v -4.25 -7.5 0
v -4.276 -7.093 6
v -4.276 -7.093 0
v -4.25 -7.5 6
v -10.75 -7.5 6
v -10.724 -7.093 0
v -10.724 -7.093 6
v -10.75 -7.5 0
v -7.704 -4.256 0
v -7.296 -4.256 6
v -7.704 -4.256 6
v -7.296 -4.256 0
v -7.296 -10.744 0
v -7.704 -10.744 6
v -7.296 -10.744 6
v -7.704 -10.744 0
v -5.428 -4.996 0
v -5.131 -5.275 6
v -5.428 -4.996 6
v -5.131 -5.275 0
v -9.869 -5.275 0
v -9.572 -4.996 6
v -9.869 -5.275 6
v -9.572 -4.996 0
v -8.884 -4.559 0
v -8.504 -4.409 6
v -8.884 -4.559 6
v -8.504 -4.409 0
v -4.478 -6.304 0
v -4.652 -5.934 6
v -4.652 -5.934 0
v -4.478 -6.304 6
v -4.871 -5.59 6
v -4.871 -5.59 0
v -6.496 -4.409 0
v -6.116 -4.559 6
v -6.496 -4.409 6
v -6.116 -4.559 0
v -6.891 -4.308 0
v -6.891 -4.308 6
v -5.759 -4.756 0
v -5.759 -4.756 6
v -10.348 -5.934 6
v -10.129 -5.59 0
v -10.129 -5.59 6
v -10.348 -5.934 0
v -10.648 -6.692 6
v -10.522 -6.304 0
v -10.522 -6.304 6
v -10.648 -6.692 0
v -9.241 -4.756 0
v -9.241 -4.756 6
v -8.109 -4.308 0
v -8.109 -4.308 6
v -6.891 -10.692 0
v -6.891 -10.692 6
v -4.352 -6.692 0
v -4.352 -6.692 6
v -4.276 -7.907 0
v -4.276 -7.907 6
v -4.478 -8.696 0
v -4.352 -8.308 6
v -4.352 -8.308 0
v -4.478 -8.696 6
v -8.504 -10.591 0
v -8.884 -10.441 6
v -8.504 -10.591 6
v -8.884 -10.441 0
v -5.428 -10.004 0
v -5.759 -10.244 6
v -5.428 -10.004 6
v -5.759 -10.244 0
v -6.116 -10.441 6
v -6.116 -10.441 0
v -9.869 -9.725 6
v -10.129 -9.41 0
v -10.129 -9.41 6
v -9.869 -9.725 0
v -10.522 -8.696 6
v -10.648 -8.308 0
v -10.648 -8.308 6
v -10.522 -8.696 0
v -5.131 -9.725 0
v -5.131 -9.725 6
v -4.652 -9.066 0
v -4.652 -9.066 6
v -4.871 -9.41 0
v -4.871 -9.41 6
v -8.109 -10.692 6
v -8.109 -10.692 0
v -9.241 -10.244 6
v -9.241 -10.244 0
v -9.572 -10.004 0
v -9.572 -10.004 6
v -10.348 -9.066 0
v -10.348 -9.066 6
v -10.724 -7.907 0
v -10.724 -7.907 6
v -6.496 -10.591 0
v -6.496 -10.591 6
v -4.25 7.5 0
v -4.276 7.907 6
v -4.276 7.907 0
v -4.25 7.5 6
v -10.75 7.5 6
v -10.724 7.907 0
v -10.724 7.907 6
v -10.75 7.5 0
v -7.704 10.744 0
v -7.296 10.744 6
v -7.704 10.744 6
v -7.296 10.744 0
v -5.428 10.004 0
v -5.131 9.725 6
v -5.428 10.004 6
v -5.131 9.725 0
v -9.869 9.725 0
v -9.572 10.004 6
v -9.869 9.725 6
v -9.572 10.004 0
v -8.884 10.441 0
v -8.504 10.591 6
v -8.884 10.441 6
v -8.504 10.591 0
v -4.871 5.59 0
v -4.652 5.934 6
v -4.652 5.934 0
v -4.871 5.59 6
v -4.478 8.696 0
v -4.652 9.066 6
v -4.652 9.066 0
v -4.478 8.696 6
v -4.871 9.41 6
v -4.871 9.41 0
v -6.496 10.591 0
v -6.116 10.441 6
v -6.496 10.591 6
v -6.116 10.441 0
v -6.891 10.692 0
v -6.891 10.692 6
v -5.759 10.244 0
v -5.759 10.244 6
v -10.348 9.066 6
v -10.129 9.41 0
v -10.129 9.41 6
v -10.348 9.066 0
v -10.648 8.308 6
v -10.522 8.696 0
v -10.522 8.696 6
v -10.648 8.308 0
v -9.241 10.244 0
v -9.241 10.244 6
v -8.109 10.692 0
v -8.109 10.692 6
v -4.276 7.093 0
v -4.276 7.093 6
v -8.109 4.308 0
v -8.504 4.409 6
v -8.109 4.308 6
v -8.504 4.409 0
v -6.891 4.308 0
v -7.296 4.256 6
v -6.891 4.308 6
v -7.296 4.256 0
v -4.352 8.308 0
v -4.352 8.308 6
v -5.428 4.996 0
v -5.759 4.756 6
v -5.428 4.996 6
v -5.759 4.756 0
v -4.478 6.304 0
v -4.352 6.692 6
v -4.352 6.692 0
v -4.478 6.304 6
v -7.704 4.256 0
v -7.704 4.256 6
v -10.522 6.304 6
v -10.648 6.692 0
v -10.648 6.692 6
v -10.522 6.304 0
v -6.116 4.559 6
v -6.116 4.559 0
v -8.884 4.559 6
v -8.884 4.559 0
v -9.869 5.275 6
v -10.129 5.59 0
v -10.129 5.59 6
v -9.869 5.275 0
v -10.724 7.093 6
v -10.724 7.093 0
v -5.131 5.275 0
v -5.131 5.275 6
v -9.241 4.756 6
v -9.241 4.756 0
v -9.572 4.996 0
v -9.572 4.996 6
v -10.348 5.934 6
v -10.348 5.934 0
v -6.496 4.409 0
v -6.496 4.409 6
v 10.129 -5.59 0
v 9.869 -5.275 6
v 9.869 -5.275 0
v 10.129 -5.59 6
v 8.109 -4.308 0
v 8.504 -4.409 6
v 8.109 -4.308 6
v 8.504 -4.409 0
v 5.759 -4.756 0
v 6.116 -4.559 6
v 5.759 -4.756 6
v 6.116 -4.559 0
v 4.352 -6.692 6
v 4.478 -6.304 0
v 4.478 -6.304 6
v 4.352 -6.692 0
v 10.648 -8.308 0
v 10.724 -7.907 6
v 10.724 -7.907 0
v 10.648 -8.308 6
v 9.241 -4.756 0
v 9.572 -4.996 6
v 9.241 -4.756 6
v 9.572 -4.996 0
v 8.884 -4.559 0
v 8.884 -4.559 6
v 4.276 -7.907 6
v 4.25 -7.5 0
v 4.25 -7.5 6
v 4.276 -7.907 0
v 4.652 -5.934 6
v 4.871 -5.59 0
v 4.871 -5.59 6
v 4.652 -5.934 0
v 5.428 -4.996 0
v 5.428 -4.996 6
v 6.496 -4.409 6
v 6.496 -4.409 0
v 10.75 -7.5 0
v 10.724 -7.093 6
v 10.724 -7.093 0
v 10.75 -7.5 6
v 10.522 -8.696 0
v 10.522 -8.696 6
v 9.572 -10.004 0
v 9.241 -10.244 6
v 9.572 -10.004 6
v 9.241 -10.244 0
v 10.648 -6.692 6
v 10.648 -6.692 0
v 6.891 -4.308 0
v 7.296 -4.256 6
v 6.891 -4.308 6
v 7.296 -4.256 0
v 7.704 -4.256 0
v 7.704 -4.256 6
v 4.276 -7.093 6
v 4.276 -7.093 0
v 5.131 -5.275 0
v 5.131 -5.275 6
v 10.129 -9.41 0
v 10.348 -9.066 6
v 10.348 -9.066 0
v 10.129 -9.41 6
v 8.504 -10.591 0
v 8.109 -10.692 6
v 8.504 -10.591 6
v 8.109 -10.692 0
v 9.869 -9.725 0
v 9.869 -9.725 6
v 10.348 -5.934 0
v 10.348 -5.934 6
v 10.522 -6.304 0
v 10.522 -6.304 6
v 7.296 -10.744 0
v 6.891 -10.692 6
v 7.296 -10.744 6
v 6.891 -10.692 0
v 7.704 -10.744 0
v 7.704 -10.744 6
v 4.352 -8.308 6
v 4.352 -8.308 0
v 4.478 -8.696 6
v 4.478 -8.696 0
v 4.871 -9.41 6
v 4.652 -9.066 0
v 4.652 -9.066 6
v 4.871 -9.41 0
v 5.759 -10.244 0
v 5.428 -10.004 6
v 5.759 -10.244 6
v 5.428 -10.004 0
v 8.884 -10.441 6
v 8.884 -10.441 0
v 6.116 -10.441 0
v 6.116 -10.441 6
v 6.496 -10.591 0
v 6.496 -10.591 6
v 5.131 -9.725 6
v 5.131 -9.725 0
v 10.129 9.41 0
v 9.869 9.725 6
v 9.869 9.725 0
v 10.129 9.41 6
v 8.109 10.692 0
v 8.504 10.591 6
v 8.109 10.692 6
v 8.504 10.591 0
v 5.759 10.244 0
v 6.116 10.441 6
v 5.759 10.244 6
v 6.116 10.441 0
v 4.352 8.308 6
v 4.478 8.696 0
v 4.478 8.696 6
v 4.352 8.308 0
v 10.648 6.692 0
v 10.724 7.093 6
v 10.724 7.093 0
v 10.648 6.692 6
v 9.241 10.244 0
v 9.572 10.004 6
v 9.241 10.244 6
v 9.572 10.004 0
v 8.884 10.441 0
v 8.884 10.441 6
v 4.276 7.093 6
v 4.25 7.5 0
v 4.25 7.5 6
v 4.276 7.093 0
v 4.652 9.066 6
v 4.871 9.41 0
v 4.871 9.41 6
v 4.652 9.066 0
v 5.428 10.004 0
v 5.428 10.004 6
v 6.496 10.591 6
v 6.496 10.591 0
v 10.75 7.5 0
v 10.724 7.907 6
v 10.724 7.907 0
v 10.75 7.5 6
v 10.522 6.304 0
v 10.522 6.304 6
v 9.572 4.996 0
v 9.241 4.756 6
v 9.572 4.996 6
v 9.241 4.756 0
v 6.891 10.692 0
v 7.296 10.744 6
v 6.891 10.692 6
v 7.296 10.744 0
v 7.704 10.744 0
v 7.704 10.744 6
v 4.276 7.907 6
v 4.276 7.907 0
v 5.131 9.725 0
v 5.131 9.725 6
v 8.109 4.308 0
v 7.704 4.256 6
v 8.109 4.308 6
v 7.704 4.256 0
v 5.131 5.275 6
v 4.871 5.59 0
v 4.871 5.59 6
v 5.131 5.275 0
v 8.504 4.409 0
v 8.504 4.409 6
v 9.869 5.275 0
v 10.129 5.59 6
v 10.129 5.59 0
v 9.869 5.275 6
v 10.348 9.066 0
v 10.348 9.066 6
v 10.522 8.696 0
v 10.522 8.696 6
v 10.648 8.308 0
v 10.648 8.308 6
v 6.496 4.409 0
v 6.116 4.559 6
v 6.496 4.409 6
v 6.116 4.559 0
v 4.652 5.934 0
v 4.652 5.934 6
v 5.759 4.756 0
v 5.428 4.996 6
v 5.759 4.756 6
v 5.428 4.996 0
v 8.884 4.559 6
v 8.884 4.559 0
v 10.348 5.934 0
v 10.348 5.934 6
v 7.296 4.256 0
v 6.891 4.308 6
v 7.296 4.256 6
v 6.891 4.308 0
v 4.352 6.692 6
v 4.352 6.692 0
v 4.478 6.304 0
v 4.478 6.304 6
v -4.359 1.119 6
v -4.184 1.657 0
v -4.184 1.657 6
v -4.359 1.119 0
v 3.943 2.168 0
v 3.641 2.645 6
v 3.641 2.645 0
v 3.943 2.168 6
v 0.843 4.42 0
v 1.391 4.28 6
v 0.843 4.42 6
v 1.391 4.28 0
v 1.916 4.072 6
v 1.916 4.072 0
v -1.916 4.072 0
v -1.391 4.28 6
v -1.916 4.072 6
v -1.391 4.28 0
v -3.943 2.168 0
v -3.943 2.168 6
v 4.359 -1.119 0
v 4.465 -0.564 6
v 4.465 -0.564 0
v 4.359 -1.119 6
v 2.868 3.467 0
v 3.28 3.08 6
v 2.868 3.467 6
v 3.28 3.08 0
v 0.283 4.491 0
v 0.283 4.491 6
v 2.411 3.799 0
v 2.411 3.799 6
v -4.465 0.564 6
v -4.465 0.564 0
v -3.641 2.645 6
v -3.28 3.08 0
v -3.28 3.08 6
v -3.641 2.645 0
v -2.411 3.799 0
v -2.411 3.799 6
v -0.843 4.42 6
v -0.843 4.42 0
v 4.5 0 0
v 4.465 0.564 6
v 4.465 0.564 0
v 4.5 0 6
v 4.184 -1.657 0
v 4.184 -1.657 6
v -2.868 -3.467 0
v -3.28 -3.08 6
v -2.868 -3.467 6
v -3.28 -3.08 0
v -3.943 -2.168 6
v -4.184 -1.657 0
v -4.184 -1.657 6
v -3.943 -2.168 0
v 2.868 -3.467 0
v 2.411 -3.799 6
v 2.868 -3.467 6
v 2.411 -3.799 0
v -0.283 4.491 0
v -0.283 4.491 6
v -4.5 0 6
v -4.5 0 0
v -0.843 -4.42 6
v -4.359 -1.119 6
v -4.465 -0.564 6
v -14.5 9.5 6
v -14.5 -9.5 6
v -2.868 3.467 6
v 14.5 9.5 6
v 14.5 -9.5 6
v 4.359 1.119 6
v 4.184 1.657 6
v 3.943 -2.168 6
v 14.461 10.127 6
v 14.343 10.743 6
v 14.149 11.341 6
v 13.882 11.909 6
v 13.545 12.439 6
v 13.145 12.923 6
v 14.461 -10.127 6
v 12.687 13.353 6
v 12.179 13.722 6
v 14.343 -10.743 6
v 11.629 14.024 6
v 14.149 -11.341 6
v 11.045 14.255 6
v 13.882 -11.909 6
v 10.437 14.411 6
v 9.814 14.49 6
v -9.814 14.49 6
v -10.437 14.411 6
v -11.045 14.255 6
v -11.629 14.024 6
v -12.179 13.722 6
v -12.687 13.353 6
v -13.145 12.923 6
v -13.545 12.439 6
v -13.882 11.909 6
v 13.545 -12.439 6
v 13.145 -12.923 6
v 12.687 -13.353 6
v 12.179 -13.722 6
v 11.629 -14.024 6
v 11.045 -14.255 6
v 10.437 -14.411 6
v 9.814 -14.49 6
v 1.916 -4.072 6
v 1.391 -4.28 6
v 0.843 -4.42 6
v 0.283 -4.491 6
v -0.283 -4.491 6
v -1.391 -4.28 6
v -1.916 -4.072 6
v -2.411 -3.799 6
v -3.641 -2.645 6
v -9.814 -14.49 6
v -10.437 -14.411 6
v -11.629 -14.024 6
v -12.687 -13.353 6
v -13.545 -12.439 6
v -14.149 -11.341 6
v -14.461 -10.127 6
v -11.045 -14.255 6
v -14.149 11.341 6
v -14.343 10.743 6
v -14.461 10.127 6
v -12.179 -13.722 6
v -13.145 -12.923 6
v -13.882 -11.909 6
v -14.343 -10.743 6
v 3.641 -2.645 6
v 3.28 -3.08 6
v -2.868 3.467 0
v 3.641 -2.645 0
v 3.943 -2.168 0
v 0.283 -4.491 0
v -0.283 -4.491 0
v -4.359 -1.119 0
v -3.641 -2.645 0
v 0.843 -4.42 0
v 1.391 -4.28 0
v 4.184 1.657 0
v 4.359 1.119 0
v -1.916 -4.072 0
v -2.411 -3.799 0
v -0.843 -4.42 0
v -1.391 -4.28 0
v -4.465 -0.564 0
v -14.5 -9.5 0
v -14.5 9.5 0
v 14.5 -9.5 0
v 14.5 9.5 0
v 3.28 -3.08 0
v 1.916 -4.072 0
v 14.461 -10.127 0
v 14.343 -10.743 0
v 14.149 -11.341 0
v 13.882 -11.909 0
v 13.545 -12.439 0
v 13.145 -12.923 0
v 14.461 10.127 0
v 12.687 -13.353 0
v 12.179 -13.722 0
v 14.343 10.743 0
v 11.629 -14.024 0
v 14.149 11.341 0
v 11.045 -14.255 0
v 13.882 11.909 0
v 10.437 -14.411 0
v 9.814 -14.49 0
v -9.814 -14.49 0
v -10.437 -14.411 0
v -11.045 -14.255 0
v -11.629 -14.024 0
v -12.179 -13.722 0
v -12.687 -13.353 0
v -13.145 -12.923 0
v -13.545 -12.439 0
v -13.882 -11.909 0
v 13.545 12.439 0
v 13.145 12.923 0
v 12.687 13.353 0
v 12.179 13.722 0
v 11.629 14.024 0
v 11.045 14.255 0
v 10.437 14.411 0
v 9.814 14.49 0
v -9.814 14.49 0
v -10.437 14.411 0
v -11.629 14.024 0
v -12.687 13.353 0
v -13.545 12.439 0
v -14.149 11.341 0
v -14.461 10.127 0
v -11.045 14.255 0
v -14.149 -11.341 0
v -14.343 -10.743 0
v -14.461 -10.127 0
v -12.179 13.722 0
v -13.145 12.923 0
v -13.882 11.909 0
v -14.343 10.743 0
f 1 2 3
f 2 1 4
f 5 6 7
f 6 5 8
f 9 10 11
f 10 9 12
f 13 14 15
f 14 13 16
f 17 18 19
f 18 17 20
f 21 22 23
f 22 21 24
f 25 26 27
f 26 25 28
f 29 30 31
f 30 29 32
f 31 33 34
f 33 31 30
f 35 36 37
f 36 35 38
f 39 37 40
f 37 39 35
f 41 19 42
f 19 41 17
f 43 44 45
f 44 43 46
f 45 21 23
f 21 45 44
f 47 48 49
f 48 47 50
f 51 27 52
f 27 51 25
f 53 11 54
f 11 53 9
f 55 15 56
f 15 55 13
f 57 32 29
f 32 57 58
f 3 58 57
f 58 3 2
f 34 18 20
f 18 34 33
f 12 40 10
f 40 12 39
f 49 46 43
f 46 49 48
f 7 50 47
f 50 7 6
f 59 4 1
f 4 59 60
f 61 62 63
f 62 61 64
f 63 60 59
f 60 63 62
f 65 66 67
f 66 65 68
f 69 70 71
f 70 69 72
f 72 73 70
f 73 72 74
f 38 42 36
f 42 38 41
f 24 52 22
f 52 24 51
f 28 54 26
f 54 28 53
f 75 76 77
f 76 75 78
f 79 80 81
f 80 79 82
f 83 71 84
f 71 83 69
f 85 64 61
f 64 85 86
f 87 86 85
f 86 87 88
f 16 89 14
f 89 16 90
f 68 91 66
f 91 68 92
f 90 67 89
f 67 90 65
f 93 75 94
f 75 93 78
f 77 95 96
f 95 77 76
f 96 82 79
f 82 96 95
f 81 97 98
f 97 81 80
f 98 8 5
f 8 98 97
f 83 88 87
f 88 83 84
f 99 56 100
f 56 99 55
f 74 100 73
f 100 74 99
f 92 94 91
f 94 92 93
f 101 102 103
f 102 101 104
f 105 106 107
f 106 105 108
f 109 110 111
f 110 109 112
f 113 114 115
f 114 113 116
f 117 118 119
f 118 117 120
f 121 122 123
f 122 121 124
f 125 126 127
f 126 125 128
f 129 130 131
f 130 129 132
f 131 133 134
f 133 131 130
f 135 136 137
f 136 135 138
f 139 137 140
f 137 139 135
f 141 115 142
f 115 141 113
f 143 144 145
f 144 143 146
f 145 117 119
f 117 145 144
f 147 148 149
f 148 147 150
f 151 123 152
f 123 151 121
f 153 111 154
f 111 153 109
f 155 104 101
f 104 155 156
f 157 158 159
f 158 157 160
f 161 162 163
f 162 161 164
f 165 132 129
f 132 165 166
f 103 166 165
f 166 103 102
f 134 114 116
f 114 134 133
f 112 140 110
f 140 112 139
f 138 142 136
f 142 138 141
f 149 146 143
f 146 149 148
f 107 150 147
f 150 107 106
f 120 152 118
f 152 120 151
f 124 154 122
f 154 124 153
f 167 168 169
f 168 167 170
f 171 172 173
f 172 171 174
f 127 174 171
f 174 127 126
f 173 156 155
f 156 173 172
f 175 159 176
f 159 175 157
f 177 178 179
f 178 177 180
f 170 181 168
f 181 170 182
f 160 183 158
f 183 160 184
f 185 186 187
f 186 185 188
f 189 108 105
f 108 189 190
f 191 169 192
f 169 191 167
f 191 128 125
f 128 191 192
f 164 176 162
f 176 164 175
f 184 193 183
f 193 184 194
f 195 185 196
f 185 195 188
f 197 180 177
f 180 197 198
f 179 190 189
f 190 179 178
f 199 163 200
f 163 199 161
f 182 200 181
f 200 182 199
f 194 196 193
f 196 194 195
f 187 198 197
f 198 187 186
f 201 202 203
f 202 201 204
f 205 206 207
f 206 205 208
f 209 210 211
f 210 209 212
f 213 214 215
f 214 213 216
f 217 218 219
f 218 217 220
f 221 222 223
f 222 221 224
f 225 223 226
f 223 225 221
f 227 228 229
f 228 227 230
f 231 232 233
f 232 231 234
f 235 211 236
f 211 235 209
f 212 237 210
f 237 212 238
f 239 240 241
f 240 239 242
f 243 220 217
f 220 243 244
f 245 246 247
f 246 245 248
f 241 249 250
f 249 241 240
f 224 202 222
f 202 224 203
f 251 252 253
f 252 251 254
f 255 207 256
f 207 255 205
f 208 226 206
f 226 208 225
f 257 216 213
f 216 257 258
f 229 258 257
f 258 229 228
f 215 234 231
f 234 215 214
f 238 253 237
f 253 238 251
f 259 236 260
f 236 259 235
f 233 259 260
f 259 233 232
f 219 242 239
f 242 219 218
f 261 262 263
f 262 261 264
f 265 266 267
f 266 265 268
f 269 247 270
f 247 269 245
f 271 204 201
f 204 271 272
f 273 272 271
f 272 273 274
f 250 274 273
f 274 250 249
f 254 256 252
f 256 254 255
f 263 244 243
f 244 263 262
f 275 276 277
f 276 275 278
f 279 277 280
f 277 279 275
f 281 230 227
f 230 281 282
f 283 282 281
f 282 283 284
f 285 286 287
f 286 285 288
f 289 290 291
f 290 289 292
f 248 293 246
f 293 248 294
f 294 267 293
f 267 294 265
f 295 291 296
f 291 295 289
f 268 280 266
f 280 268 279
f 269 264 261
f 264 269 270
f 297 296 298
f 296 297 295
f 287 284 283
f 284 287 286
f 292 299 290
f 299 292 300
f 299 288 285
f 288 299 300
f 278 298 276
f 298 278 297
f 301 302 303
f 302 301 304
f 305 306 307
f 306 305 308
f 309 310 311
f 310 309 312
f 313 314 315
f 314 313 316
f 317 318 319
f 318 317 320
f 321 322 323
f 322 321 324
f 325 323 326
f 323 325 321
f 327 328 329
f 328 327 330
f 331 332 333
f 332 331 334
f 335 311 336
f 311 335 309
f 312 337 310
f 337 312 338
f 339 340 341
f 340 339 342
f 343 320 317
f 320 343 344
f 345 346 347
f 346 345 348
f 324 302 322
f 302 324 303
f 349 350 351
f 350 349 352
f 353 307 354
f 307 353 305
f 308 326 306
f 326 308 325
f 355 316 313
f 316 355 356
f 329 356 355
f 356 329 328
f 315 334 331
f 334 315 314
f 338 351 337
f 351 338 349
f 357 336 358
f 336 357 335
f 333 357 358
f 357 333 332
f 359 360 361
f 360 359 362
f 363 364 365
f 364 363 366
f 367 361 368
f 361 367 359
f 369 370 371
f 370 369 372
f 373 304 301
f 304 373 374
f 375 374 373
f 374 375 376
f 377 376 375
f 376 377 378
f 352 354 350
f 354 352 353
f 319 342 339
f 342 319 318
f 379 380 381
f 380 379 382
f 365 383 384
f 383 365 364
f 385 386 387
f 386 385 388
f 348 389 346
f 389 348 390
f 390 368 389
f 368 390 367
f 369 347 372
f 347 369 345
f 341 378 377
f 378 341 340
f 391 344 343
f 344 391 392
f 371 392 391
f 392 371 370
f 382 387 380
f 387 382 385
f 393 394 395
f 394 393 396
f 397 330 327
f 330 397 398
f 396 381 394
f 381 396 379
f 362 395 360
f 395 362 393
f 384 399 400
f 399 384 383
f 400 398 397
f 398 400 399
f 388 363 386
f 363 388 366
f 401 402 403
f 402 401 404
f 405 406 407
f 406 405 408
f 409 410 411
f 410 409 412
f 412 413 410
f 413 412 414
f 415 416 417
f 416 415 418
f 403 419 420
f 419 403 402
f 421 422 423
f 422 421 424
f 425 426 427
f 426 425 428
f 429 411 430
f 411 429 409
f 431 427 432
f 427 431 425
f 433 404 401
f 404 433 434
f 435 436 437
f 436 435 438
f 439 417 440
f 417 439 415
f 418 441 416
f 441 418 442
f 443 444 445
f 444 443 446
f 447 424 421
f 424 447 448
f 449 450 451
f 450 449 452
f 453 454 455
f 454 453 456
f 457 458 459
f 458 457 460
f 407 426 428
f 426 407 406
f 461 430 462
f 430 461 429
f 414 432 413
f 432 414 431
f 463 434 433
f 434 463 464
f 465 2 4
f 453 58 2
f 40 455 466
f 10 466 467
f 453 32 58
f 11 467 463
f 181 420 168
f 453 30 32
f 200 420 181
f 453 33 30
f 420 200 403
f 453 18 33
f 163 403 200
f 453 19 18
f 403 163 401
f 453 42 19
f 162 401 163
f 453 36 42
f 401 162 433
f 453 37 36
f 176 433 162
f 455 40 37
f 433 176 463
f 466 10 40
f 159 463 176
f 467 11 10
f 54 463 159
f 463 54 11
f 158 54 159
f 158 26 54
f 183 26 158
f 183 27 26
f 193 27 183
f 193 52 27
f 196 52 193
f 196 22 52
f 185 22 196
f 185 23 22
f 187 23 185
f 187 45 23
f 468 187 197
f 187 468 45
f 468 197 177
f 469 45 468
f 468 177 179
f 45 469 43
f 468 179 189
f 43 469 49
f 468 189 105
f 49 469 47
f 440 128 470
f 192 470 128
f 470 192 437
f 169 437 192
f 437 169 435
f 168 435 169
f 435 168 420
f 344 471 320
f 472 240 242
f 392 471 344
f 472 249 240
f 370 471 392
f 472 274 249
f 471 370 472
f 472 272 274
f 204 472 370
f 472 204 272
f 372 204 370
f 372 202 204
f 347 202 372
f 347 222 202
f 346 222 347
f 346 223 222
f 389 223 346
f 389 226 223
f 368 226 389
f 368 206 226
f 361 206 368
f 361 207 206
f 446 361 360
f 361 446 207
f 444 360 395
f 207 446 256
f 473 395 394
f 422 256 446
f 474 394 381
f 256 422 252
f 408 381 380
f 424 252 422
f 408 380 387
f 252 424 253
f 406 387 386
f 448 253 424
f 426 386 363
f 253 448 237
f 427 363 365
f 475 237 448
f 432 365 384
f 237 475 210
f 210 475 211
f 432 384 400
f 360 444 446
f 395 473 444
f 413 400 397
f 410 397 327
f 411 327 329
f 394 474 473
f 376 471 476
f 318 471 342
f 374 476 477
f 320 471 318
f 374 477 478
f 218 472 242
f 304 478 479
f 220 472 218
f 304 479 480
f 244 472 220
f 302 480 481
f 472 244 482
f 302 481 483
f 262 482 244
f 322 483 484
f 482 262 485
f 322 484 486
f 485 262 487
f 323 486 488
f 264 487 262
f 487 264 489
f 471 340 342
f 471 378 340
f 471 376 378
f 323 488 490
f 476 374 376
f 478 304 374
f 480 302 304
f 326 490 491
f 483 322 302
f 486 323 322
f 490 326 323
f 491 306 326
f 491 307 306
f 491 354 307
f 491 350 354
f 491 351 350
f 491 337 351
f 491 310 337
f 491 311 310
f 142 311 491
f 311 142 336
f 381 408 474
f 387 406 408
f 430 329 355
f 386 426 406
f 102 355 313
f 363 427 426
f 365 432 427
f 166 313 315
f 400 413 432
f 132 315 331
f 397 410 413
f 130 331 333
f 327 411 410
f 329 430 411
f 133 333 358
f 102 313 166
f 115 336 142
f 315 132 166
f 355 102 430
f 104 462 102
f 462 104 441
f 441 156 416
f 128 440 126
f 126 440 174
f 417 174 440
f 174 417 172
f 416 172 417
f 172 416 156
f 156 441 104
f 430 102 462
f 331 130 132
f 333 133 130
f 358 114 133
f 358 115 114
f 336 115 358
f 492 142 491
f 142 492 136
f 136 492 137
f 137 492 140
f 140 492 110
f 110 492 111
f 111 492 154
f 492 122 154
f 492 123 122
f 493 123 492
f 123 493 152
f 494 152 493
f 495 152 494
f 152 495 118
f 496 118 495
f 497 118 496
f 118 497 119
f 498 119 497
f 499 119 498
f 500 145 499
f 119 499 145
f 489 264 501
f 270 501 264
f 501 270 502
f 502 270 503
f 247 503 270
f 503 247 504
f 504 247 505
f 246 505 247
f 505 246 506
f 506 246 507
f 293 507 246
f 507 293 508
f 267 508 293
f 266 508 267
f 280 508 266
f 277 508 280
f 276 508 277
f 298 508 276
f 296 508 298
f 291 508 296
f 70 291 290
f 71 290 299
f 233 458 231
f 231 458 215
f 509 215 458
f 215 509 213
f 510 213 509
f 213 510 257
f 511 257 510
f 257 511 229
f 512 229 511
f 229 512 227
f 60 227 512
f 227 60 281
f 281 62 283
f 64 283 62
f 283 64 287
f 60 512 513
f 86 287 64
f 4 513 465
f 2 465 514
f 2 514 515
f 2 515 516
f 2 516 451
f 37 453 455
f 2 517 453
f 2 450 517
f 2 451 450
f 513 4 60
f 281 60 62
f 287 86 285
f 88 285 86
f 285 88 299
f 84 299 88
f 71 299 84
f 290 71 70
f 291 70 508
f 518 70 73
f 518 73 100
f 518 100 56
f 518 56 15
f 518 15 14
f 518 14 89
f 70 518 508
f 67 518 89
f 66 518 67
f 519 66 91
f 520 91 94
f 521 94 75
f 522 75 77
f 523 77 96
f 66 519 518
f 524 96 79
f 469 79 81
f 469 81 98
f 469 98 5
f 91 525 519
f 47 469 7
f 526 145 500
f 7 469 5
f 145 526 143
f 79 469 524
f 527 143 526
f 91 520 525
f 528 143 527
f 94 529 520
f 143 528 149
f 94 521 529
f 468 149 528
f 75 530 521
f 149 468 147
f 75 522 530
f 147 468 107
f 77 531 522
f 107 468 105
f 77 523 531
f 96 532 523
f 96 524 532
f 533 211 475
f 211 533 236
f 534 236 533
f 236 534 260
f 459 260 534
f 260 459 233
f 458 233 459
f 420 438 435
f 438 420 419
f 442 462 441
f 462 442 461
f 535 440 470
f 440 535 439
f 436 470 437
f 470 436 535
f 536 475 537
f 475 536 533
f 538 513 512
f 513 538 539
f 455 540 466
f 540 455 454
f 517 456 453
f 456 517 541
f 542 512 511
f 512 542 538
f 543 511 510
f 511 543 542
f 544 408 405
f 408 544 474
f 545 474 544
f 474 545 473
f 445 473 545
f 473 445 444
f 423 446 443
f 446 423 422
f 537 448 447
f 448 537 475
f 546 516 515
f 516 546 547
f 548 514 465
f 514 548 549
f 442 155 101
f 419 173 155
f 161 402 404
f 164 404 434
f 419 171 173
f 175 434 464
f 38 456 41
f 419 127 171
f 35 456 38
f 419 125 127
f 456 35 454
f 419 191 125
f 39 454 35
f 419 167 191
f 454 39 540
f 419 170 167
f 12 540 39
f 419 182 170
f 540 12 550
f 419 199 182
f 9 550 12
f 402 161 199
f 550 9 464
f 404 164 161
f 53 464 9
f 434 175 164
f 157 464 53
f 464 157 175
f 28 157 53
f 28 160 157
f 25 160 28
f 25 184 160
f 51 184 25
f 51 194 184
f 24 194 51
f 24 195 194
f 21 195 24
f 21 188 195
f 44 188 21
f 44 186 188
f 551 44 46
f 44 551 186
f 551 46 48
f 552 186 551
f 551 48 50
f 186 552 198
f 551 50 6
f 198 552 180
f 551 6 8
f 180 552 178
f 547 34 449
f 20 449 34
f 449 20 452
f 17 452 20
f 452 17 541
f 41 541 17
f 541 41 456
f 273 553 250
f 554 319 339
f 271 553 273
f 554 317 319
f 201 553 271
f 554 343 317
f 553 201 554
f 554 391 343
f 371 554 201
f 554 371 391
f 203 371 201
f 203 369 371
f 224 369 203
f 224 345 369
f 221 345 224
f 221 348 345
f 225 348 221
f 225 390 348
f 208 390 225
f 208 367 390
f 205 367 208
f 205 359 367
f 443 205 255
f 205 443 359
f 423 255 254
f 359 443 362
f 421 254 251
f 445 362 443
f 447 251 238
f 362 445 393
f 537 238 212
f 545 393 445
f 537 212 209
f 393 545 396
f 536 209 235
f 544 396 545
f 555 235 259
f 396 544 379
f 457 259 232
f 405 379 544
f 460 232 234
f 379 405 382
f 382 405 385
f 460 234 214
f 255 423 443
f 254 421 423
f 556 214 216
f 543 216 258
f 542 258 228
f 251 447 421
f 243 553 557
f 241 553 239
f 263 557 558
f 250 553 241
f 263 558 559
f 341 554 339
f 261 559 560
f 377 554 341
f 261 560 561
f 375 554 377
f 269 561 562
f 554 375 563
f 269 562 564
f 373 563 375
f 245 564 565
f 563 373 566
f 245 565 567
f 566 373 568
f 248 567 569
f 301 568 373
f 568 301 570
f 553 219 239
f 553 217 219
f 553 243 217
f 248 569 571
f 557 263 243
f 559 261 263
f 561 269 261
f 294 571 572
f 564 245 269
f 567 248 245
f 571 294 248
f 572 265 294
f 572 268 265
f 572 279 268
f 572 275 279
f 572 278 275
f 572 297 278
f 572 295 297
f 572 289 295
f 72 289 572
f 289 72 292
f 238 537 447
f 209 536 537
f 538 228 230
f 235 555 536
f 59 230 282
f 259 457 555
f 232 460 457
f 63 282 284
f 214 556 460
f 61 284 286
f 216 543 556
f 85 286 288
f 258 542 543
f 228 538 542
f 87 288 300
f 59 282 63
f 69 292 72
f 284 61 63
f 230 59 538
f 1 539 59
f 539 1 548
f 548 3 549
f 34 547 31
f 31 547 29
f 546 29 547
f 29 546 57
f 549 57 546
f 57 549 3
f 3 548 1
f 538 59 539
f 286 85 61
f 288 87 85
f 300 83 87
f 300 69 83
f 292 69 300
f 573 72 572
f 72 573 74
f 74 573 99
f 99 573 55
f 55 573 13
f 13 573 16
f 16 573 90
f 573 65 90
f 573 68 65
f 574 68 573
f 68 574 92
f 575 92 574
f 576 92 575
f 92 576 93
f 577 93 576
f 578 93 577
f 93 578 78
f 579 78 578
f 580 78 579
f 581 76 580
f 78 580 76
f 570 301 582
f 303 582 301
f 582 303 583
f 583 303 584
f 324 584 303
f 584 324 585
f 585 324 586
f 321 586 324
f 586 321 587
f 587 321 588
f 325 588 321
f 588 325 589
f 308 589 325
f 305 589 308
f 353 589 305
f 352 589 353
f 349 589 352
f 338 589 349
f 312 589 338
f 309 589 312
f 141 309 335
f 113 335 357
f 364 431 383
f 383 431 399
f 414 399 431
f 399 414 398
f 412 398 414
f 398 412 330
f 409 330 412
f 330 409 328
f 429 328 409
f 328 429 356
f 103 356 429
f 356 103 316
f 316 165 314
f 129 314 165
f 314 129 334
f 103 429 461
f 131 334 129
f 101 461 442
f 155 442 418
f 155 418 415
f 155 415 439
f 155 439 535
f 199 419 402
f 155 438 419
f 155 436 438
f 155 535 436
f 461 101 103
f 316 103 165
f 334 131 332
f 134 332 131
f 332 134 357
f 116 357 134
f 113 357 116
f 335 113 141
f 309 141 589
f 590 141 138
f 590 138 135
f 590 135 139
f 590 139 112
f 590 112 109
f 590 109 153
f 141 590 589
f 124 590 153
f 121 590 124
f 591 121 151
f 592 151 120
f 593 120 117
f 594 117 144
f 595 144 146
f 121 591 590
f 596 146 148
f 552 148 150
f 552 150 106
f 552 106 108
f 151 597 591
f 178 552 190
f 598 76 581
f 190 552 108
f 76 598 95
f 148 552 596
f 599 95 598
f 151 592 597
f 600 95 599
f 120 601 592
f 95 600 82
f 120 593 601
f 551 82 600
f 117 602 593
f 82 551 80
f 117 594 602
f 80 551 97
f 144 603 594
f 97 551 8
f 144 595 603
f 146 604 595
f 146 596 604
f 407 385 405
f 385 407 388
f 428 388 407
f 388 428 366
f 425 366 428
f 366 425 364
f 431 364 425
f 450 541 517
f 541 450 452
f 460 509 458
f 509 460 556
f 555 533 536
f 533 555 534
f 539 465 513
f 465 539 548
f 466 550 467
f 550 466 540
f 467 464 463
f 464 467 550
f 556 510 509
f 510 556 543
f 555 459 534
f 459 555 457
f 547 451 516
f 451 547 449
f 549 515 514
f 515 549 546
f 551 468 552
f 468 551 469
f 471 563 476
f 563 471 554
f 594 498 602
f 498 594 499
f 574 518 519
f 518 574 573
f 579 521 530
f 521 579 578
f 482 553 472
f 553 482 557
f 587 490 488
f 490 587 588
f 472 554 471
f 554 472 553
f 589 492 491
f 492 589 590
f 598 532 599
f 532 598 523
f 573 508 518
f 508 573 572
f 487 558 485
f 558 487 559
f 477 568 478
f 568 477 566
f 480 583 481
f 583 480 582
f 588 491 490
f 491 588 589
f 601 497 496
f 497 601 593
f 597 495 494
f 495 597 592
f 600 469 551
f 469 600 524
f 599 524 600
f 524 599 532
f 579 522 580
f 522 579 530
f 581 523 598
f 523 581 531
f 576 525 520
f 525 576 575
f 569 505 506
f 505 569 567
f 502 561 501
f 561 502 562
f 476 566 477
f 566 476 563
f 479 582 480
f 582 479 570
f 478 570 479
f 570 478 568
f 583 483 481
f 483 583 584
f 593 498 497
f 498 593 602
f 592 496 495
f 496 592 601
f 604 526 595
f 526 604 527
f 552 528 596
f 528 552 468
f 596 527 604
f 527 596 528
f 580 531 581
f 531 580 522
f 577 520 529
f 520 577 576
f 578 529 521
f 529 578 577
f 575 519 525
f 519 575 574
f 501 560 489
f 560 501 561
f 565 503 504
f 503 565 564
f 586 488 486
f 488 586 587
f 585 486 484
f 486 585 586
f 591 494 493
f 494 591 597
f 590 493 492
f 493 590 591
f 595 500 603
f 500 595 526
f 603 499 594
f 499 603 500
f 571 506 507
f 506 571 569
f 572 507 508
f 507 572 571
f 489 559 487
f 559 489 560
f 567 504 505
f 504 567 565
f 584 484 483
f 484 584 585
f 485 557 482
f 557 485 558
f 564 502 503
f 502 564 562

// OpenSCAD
$fn = 50;


difference() {
	union() {
		hull() {
			translate(v = [-9.5000000000, 9.5000000000, 0]) {
				cylinder(h = 6, r = 5);
			}
			translate(v = [9.5000000000, 9.5000000000, 0]) {
				cylinder(h = 6, r = 5);
			}
			translate(v = [-9.5000000000, -9.5000000000, 0]) {
				cylinder(h = 6, r = 5);
			}
			translate(v = [9.5000000000, -9.5000000000, 0]) {
				cylinder(h = 6, r = 5);
			}
		}
	}
	union() {
		#translate(v = [-7.5000000000, -7.5000000000, -100.0000000000]) {
			cylinder(h = 200, r = 3.2500000000);
		}
		#translate(v = [-7.5000000000, 7.5000000000, -100.0000000000]) {
			cylinder(h = 200, r = 3.2500000000);
		}
		#translate(v = [7.5000000000, -7.5000000000, -100.0000000000]) {
			cylinder(h = 200, r = 3.2500000000);
		}
		#translate(v = [7.5000000000, 7.5000000000, -100.0000000000]) {
			cylinder(h = 200, r = 3.2500000000);
		}
		#cylinder(h = 6, r = 4.5000000000);
	}
}
